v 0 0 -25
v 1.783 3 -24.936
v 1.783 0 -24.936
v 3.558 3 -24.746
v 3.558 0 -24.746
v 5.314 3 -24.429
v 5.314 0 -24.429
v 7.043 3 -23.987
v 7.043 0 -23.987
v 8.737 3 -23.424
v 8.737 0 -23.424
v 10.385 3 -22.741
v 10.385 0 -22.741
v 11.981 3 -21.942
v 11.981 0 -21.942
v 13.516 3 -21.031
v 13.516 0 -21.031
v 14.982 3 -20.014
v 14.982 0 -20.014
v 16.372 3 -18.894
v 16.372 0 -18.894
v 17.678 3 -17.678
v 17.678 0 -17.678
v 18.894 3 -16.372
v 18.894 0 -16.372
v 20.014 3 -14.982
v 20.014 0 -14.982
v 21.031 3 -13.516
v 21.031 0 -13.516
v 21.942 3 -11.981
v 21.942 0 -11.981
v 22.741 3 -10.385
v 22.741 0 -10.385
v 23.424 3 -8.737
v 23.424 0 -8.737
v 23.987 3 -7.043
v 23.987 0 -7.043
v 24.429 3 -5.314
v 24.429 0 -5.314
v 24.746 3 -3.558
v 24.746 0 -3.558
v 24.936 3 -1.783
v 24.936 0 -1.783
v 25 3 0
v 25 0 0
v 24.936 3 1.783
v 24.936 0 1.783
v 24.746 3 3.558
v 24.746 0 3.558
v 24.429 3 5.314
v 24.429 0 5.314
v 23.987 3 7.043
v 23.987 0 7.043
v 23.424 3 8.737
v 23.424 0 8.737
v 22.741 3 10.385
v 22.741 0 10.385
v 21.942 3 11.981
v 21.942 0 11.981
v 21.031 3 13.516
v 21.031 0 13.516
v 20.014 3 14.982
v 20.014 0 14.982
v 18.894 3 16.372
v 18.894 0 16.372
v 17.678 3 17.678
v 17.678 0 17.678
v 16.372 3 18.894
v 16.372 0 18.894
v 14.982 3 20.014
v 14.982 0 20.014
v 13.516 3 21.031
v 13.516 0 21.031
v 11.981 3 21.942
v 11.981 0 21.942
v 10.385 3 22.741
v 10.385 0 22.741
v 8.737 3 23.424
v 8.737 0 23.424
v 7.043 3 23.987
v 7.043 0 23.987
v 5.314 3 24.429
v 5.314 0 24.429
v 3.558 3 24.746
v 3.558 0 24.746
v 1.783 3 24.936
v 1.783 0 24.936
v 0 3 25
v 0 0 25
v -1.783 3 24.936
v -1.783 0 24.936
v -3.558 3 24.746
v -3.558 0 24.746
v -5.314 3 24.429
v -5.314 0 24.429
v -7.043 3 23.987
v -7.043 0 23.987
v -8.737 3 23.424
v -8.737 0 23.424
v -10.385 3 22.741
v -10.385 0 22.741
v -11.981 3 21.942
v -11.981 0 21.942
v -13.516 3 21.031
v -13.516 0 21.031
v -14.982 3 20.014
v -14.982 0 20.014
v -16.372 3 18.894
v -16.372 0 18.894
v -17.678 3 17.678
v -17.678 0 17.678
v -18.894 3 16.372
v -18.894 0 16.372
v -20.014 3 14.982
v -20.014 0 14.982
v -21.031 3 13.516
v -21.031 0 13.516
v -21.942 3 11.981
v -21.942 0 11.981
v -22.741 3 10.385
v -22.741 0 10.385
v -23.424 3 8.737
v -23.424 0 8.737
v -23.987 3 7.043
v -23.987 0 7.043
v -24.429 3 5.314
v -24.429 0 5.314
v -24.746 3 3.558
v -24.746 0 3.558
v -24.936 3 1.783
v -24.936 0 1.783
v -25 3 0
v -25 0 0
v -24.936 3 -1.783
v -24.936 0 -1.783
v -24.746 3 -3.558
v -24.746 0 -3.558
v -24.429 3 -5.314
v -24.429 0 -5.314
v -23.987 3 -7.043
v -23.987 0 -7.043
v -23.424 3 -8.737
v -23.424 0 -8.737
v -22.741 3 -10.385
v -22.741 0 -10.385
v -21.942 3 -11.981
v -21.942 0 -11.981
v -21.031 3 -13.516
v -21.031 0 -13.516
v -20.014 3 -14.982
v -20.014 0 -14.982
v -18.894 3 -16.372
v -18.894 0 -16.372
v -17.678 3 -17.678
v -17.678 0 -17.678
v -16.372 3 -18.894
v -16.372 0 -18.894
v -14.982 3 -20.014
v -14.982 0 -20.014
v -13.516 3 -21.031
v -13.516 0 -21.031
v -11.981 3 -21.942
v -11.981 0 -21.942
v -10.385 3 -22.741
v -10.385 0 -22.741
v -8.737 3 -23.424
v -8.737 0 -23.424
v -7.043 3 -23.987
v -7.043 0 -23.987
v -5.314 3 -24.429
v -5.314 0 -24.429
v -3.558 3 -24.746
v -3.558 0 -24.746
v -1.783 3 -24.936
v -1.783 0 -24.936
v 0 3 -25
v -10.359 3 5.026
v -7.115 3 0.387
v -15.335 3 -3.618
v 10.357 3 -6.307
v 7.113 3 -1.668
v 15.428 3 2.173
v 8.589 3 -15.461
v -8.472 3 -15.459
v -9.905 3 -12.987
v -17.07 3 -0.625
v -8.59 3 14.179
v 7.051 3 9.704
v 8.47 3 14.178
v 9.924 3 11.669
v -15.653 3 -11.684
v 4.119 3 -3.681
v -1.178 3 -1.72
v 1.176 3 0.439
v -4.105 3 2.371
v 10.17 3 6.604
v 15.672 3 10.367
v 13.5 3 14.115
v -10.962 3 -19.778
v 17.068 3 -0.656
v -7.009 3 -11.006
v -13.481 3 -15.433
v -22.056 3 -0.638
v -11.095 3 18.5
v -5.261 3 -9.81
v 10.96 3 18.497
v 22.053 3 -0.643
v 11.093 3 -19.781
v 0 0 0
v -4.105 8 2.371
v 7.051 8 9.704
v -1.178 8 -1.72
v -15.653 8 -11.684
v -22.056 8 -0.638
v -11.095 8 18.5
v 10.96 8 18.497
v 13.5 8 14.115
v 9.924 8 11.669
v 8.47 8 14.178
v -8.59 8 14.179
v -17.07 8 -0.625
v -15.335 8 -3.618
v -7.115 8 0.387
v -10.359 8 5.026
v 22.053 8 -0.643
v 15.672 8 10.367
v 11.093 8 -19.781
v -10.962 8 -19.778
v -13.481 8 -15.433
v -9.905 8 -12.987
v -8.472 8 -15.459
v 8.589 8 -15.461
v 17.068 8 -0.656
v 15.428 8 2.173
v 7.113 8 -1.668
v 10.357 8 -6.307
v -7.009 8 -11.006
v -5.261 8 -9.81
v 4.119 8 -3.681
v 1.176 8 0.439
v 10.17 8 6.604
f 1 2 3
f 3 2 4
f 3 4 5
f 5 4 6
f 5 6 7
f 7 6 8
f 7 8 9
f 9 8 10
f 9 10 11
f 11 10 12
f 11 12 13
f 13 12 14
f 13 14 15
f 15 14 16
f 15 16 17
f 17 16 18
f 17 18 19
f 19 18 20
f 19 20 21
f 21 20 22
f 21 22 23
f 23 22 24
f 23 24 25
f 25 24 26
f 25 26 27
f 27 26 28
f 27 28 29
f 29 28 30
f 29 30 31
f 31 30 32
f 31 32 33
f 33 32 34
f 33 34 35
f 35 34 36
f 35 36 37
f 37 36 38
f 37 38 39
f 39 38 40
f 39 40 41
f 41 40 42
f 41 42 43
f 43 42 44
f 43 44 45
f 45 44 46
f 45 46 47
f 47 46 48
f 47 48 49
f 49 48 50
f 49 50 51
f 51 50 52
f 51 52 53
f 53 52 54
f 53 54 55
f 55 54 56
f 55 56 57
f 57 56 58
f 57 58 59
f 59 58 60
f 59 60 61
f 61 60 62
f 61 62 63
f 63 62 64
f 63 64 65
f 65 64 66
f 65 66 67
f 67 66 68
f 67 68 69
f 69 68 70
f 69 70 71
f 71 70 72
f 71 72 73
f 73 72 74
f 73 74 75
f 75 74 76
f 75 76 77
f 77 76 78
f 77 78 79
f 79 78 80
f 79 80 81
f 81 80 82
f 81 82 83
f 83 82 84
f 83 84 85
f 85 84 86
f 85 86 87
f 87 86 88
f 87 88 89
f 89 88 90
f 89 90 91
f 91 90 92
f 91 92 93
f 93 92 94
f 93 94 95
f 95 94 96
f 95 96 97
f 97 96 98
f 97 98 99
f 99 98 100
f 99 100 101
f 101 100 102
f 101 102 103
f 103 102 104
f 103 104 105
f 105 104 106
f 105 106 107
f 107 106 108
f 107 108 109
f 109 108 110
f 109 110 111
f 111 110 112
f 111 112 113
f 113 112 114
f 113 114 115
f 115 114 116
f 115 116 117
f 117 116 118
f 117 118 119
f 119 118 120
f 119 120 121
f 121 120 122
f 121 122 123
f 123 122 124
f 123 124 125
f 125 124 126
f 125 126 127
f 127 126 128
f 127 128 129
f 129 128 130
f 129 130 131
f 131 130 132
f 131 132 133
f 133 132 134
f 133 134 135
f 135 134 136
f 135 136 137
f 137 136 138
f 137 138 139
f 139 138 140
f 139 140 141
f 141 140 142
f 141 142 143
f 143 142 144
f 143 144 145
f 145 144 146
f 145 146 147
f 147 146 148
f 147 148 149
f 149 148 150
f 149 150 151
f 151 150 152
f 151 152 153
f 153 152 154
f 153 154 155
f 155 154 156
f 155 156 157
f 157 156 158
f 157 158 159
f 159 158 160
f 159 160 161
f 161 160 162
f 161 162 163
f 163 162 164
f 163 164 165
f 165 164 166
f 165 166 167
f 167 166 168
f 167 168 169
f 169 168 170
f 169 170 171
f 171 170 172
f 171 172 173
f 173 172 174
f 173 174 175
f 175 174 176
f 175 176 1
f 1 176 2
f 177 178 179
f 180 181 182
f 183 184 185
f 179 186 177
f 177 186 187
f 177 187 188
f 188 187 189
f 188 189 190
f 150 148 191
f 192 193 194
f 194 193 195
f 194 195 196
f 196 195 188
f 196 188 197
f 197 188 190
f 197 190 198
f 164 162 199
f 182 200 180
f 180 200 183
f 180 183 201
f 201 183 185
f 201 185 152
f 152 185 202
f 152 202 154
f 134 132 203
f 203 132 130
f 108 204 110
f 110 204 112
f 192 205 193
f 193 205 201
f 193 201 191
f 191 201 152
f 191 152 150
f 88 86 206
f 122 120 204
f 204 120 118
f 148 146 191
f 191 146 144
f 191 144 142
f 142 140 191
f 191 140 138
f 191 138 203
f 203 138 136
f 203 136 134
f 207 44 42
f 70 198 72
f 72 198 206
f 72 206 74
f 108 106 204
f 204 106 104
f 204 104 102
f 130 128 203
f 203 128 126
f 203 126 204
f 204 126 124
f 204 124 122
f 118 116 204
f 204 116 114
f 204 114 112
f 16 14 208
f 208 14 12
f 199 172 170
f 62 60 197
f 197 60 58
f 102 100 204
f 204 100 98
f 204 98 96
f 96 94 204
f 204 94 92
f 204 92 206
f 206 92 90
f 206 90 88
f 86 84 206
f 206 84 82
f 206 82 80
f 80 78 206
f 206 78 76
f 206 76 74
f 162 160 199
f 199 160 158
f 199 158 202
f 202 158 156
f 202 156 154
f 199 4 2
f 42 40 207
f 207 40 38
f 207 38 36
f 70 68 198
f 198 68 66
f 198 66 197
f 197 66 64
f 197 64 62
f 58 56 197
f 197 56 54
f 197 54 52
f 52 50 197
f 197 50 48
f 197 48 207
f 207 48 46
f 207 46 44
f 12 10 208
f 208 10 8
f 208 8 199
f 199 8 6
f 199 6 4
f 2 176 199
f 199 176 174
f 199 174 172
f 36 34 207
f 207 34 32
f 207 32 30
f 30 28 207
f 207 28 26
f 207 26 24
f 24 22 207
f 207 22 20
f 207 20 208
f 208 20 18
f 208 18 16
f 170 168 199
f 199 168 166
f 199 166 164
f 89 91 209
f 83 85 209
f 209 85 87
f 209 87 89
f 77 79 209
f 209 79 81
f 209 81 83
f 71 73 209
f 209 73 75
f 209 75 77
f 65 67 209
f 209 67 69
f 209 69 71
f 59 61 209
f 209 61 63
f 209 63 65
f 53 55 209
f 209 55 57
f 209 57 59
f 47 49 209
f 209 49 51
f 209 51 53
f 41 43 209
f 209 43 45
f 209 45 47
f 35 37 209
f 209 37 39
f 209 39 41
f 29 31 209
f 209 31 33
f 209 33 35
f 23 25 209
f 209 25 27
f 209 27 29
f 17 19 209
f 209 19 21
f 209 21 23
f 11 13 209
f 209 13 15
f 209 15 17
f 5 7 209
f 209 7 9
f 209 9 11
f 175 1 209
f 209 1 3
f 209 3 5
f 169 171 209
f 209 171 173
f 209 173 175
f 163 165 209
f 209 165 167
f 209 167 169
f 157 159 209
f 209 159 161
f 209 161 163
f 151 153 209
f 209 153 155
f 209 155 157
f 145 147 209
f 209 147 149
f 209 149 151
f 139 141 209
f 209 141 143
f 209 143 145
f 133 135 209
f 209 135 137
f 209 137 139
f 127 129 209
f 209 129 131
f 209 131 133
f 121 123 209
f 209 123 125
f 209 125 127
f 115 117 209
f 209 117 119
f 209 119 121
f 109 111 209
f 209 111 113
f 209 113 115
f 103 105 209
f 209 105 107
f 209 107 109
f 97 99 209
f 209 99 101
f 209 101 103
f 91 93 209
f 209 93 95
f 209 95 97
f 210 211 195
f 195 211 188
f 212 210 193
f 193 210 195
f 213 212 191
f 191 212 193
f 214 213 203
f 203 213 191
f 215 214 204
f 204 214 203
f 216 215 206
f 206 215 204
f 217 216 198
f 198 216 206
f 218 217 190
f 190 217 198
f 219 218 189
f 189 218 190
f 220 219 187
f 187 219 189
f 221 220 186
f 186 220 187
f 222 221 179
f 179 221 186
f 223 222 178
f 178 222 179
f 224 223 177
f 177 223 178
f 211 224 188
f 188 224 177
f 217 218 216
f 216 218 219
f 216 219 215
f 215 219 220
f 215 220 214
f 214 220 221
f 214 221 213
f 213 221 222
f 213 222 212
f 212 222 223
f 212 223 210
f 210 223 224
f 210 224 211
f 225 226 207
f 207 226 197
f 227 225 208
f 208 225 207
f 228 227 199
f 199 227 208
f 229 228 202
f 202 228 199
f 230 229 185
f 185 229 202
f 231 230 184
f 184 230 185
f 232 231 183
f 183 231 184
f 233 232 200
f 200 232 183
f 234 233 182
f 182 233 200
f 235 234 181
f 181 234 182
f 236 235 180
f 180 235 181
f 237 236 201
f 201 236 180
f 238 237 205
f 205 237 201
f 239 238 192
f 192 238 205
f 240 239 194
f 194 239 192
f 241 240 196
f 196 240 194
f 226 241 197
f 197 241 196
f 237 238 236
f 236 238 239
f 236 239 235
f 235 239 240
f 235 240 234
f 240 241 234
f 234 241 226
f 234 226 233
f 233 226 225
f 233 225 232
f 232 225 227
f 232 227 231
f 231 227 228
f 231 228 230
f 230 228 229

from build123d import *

# Parameters (mm, degrees)
SKIZZE2_R                       = 25
AUFSATZ_LINEAR_AUSTRAGEN2_DEPTH = 3
AUFSATZ_LINEAR_AUSTRAGEN1_DEPTH = 5


with BuildPart() as part:
    # Skizze2 → Aufsatz-Linear austragen2 (new body)
    with BuildSketch(Plane(origin=(0, 0, 0), x_dir=(1, 0, 0), z_dir=(0, 1, 0))):
        Circle(SKIZZE2_R)
    extrude(amount=AUFSATZ_LINEAR_AUSTRAGEN2_DEPTH)

    # Model → Aufsatz-Linear austragen1 (add)
    with BuildSketch(Plane(origin=(0, 3, -3), x_dir=(1, 0, 0), z_dir=(0, -1, 0))):
        Polygon((-4.104544089, 5.371303079), (-1.178372214, 1.279701516), (-15.653137839, -8.684400046), (-22.055559714, 2.361810891), (-11.094544089, 21.499584329), (10.959909036, 21.497357766), (13.499830911, 17.115131204), (9.924205911, 14.669310891), (8.470377786, 17.177592141), (-8.590481589, 17.179349954), (-17.069700339, 2.374701516), (-15.335325339, -0.617798484), (-7.115325339, 3.386615579), (-10.358840964, 8.025599954), (7.050534036, 12.703842141), align=None)
        Polygon((15.672018411, 13.367240579), (10.169830911, 9.603646829), (1.176393411, 3.438998391), (4.118971536, -0.680845359), (-5.261184714, -6.810220359), (-7.008684714, -8.005532859), (10.356862161, -3.306900046), (7.113346536, 1.332084329), (15.428268411, 5.173021829), (17.067721536, 2.344232766), (8.588502786, -12.460650046), (-8.472356589, -12.458657859), (-9.905090964, -9.986704734), (-13.480715964, -12.432525046), (-10.961887839, -16.778423484), (11.092565286, -16.780884421), (22.053346536, 2.357123391), align=None)
    extrude(amount=-AUFSATZ_LINEAR_AUSTRAGEN1_DEPTH)


solid = part.part
